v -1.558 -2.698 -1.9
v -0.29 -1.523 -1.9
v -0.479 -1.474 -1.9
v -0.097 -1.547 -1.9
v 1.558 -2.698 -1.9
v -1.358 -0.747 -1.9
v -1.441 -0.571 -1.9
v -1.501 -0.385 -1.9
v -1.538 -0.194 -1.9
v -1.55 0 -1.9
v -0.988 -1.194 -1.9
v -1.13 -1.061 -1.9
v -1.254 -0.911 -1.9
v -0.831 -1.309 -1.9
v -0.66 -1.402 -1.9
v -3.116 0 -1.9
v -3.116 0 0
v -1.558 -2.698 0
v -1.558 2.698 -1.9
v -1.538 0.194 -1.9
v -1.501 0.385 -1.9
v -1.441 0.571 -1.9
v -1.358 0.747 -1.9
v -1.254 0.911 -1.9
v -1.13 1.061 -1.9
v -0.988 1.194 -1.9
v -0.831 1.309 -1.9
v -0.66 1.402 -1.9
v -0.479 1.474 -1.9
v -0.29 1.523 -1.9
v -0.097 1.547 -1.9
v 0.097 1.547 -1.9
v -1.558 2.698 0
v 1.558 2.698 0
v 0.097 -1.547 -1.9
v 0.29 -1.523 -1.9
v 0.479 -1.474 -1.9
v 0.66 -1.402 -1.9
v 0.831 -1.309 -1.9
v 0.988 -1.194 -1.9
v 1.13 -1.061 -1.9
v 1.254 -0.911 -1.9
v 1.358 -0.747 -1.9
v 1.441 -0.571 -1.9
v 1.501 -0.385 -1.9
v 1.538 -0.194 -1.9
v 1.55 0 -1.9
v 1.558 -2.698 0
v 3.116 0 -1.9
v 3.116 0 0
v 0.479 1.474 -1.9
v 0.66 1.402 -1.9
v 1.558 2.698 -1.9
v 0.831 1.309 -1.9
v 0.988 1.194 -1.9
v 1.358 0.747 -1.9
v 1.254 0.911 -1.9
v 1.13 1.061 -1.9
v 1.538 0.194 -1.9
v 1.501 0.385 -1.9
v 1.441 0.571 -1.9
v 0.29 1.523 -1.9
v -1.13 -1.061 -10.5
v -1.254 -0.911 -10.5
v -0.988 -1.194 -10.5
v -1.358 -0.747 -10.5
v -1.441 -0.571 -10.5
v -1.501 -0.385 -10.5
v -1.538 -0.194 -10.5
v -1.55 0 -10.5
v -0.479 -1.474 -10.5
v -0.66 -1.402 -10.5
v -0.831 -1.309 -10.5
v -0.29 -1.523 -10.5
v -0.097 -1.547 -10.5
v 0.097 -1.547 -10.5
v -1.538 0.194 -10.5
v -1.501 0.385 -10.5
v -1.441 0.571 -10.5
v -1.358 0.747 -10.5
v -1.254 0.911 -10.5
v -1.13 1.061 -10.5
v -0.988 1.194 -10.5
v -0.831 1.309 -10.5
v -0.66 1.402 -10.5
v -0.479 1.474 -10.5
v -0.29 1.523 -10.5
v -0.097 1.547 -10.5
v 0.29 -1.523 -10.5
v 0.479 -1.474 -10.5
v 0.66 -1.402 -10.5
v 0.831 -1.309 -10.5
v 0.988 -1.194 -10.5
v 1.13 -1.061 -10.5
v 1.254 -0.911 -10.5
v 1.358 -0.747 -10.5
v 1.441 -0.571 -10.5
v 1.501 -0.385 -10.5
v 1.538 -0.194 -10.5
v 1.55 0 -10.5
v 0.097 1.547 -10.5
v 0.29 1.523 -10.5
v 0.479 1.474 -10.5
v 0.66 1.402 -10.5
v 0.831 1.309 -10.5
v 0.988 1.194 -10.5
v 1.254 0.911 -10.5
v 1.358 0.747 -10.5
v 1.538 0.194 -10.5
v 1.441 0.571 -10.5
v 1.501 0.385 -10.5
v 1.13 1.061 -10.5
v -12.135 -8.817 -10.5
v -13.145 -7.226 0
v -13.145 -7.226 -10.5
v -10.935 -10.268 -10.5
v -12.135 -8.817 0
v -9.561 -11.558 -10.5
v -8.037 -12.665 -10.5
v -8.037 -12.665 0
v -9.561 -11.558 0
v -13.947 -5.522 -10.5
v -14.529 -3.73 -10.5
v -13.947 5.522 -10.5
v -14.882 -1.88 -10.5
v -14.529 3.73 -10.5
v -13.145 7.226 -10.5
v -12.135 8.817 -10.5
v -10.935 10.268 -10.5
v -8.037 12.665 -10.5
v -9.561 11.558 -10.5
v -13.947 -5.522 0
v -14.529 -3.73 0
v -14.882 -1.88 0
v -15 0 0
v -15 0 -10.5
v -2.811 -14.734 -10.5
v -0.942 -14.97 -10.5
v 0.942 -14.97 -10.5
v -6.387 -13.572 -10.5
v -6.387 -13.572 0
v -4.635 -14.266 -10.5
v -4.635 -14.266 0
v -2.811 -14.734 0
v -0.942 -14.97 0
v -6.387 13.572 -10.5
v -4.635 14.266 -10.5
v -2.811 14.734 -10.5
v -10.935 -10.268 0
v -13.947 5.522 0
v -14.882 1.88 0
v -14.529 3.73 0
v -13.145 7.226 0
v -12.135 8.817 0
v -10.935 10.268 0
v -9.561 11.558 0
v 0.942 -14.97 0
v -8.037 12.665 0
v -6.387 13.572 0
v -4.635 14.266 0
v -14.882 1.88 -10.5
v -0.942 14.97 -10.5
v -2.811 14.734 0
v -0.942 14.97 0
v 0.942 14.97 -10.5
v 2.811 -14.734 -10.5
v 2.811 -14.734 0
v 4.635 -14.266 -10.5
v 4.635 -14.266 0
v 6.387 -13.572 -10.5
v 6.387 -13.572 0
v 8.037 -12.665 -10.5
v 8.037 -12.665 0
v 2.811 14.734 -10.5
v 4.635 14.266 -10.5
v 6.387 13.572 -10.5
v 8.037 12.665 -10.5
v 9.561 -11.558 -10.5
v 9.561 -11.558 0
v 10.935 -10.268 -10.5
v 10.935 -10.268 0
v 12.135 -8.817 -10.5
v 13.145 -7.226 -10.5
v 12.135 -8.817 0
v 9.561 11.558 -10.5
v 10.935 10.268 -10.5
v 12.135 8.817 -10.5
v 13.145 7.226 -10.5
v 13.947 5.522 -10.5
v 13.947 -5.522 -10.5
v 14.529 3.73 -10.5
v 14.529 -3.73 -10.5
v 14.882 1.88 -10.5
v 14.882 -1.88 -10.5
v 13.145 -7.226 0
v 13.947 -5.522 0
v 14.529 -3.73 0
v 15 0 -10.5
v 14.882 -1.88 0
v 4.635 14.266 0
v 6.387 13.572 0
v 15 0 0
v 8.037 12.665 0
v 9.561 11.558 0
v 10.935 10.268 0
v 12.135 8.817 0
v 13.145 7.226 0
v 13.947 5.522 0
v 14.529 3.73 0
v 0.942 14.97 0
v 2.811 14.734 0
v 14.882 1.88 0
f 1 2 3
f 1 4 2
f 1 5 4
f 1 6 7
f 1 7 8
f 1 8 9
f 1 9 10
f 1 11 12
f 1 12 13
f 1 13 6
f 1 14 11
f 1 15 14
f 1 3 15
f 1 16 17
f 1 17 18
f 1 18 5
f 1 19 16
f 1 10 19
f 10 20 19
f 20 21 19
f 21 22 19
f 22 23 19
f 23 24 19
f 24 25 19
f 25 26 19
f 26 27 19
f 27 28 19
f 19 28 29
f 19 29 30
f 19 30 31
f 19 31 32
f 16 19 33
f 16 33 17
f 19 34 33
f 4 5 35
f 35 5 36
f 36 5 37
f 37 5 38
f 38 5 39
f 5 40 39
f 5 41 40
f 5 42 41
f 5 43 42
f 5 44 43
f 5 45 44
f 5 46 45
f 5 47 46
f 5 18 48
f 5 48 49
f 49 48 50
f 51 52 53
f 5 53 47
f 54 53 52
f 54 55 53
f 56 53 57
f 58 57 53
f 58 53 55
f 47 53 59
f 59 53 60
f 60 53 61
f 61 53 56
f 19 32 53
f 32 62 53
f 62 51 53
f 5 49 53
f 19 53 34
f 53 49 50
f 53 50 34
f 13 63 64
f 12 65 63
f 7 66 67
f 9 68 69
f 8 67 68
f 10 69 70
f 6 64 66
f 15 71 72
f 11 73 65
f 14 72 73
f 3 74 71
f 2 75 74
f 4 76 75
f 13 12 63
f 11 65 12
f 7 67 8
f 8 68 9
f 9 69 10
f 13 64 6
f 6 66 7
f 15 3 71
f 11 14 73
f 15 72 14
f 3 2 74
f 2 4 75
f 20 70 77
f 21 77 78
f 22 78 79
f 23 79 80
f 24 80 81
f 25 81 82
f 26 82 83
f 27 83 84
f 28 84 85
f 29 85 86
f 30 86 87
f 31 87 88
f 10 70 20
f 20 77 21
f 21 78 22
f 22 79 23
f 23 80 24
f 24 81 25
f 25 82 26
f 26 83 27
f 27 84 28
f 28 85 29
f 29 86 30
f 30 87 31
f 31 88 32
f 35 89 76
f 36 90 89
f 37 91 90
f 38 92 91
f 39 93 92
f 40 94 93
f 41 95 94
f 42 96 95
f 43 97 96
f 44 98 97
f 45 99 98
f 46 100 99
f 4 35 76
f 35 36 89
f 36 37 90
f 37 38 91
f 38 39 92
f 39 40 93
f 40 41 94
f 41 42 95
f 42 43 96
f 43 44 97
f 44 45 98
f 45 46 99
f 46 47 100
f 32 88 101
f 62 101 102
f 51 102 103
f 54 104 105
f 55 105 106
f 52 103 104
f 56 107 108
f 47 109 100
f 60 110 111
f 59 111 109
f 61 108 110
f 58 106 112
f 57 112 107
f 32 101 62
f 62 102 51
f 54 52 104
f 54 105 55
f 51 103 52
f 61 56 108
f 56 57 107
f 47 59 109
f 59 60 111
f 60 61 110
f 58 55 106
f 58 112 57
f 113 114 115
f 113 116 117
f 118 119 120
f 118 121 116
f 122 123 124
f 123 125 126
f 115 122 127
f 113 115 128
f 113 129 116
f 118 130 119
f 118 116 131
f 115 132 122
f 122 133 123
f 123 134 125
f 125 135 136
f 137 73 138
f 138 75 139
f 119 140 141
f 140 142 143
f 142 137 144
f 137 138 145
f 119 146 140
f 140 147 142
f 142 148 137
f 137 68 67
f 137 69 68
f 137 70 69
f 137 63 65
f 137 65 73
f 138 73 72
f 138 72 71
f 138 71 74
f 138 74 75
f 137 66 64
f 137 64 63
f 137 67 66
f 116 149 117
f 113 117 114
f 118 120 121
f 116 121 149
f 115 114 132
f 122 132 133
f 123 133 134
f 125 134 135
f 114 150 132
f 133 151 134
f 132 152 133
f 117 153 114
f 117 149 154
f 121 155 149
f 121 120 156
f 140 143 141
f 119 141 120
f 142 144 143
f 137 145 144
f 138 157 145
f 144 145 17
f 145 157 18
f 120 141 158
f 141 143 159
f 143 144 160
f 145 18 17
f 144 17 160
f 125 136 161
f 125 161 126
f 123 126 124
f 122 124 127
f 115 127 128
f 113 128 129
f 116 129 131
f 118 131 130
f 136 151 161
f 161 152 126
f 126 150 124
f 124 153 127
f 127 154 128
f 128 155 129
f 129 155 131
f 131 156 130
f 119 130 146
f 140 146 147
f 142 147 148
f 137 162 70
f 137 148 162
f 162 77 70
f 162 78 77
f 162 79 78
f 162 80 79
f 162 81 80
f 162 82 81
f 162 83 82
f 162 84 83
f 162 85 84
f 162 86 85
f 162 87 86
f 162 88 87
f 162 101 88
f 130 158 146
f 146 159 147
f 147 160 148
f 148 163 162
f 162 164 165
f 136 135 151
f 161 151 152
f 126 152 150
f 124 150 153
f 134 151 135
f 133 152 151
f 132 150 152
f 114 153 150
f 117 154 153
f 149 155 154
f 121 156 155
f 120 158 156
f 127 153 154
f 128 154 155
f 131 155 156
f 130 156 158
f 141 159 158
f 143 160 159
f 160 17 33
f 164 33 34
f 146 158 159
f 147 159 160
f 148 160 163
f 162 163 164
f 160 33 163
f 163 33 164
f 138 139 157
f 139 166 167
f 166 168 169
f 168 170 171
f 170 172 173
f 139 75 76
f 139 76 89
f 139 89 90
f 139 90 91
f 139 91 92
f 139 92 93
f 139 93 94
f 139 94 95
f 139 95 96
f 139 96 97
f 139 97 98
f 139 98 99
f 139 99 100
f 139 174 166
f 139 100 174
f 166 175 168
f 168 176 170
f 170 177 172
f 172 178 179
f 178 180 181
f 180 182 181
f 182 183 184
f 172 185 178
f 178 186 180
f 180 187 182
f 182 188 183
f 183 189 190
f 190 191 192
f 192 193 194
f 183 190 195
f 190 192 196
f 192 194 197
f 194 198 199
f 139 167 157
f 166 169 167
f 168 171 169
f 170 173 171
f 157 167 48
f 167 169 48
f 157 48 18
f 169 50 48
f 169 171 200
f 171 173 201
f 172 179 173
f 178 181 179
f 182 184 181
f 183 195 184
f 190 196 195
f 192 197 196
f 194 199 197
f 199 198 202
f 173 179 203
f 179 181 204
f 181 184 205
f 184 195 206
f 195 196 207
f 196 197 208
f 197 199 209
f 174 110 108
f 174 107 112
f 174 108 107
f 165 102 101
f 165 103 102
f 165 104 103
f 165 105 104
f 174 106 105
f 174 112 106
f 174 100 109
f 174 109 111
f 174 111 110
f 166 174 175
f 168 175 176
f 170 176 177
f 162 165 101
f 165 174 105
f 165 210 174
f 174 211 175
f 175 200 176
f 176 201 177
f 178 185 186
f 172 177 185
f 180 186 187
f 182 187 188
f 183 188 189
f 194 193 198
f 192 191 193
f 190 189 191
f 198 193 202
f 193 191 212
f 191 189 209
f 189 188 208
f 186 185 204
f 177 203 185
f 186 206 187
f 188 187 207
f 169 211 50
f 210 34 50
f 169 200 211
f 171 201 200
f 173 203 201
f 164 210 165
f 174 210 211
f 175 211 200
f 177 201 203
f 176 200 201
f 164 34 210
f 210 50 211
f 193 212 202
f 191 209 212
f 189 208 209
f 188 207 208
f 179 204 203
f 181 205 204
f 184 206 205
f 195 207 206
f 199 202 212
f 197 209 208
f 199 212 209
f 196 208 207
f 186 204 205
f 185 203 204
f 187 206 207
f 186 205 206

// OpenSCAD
$fn = 50;

difference() {
	union() {
		translate(v = [0, 0, -10.5]) {
			cylinder(h = 10.5, r = 15.0);
		}
	}
	union() {
		translate(v = [0, 0, 0]) {
			rotate(a = [0, 0, 0]) {
				difference() {
					union() {
						translate(v = [0, 0, -1.9]) {
							linear_extrude(height = 1.9) {
								polygon(points = [[3.1158, 0.0], [1.5579000000000005, 2.698361953111554], [-1.5578999999999994, 2.6983619531115544], [-3.1158, 3.815754496783323e-16], [-1.5579000000000014, -2.6983619531115535], [1.557899999999998, -2.6983619531115552]]);
							}
						}
					}
					union();
				}
			}
		}
		#translate(v = [0, 0, -100.0]) {
			cylinder(h = 200, r = 1.55);
		}
	}
}
